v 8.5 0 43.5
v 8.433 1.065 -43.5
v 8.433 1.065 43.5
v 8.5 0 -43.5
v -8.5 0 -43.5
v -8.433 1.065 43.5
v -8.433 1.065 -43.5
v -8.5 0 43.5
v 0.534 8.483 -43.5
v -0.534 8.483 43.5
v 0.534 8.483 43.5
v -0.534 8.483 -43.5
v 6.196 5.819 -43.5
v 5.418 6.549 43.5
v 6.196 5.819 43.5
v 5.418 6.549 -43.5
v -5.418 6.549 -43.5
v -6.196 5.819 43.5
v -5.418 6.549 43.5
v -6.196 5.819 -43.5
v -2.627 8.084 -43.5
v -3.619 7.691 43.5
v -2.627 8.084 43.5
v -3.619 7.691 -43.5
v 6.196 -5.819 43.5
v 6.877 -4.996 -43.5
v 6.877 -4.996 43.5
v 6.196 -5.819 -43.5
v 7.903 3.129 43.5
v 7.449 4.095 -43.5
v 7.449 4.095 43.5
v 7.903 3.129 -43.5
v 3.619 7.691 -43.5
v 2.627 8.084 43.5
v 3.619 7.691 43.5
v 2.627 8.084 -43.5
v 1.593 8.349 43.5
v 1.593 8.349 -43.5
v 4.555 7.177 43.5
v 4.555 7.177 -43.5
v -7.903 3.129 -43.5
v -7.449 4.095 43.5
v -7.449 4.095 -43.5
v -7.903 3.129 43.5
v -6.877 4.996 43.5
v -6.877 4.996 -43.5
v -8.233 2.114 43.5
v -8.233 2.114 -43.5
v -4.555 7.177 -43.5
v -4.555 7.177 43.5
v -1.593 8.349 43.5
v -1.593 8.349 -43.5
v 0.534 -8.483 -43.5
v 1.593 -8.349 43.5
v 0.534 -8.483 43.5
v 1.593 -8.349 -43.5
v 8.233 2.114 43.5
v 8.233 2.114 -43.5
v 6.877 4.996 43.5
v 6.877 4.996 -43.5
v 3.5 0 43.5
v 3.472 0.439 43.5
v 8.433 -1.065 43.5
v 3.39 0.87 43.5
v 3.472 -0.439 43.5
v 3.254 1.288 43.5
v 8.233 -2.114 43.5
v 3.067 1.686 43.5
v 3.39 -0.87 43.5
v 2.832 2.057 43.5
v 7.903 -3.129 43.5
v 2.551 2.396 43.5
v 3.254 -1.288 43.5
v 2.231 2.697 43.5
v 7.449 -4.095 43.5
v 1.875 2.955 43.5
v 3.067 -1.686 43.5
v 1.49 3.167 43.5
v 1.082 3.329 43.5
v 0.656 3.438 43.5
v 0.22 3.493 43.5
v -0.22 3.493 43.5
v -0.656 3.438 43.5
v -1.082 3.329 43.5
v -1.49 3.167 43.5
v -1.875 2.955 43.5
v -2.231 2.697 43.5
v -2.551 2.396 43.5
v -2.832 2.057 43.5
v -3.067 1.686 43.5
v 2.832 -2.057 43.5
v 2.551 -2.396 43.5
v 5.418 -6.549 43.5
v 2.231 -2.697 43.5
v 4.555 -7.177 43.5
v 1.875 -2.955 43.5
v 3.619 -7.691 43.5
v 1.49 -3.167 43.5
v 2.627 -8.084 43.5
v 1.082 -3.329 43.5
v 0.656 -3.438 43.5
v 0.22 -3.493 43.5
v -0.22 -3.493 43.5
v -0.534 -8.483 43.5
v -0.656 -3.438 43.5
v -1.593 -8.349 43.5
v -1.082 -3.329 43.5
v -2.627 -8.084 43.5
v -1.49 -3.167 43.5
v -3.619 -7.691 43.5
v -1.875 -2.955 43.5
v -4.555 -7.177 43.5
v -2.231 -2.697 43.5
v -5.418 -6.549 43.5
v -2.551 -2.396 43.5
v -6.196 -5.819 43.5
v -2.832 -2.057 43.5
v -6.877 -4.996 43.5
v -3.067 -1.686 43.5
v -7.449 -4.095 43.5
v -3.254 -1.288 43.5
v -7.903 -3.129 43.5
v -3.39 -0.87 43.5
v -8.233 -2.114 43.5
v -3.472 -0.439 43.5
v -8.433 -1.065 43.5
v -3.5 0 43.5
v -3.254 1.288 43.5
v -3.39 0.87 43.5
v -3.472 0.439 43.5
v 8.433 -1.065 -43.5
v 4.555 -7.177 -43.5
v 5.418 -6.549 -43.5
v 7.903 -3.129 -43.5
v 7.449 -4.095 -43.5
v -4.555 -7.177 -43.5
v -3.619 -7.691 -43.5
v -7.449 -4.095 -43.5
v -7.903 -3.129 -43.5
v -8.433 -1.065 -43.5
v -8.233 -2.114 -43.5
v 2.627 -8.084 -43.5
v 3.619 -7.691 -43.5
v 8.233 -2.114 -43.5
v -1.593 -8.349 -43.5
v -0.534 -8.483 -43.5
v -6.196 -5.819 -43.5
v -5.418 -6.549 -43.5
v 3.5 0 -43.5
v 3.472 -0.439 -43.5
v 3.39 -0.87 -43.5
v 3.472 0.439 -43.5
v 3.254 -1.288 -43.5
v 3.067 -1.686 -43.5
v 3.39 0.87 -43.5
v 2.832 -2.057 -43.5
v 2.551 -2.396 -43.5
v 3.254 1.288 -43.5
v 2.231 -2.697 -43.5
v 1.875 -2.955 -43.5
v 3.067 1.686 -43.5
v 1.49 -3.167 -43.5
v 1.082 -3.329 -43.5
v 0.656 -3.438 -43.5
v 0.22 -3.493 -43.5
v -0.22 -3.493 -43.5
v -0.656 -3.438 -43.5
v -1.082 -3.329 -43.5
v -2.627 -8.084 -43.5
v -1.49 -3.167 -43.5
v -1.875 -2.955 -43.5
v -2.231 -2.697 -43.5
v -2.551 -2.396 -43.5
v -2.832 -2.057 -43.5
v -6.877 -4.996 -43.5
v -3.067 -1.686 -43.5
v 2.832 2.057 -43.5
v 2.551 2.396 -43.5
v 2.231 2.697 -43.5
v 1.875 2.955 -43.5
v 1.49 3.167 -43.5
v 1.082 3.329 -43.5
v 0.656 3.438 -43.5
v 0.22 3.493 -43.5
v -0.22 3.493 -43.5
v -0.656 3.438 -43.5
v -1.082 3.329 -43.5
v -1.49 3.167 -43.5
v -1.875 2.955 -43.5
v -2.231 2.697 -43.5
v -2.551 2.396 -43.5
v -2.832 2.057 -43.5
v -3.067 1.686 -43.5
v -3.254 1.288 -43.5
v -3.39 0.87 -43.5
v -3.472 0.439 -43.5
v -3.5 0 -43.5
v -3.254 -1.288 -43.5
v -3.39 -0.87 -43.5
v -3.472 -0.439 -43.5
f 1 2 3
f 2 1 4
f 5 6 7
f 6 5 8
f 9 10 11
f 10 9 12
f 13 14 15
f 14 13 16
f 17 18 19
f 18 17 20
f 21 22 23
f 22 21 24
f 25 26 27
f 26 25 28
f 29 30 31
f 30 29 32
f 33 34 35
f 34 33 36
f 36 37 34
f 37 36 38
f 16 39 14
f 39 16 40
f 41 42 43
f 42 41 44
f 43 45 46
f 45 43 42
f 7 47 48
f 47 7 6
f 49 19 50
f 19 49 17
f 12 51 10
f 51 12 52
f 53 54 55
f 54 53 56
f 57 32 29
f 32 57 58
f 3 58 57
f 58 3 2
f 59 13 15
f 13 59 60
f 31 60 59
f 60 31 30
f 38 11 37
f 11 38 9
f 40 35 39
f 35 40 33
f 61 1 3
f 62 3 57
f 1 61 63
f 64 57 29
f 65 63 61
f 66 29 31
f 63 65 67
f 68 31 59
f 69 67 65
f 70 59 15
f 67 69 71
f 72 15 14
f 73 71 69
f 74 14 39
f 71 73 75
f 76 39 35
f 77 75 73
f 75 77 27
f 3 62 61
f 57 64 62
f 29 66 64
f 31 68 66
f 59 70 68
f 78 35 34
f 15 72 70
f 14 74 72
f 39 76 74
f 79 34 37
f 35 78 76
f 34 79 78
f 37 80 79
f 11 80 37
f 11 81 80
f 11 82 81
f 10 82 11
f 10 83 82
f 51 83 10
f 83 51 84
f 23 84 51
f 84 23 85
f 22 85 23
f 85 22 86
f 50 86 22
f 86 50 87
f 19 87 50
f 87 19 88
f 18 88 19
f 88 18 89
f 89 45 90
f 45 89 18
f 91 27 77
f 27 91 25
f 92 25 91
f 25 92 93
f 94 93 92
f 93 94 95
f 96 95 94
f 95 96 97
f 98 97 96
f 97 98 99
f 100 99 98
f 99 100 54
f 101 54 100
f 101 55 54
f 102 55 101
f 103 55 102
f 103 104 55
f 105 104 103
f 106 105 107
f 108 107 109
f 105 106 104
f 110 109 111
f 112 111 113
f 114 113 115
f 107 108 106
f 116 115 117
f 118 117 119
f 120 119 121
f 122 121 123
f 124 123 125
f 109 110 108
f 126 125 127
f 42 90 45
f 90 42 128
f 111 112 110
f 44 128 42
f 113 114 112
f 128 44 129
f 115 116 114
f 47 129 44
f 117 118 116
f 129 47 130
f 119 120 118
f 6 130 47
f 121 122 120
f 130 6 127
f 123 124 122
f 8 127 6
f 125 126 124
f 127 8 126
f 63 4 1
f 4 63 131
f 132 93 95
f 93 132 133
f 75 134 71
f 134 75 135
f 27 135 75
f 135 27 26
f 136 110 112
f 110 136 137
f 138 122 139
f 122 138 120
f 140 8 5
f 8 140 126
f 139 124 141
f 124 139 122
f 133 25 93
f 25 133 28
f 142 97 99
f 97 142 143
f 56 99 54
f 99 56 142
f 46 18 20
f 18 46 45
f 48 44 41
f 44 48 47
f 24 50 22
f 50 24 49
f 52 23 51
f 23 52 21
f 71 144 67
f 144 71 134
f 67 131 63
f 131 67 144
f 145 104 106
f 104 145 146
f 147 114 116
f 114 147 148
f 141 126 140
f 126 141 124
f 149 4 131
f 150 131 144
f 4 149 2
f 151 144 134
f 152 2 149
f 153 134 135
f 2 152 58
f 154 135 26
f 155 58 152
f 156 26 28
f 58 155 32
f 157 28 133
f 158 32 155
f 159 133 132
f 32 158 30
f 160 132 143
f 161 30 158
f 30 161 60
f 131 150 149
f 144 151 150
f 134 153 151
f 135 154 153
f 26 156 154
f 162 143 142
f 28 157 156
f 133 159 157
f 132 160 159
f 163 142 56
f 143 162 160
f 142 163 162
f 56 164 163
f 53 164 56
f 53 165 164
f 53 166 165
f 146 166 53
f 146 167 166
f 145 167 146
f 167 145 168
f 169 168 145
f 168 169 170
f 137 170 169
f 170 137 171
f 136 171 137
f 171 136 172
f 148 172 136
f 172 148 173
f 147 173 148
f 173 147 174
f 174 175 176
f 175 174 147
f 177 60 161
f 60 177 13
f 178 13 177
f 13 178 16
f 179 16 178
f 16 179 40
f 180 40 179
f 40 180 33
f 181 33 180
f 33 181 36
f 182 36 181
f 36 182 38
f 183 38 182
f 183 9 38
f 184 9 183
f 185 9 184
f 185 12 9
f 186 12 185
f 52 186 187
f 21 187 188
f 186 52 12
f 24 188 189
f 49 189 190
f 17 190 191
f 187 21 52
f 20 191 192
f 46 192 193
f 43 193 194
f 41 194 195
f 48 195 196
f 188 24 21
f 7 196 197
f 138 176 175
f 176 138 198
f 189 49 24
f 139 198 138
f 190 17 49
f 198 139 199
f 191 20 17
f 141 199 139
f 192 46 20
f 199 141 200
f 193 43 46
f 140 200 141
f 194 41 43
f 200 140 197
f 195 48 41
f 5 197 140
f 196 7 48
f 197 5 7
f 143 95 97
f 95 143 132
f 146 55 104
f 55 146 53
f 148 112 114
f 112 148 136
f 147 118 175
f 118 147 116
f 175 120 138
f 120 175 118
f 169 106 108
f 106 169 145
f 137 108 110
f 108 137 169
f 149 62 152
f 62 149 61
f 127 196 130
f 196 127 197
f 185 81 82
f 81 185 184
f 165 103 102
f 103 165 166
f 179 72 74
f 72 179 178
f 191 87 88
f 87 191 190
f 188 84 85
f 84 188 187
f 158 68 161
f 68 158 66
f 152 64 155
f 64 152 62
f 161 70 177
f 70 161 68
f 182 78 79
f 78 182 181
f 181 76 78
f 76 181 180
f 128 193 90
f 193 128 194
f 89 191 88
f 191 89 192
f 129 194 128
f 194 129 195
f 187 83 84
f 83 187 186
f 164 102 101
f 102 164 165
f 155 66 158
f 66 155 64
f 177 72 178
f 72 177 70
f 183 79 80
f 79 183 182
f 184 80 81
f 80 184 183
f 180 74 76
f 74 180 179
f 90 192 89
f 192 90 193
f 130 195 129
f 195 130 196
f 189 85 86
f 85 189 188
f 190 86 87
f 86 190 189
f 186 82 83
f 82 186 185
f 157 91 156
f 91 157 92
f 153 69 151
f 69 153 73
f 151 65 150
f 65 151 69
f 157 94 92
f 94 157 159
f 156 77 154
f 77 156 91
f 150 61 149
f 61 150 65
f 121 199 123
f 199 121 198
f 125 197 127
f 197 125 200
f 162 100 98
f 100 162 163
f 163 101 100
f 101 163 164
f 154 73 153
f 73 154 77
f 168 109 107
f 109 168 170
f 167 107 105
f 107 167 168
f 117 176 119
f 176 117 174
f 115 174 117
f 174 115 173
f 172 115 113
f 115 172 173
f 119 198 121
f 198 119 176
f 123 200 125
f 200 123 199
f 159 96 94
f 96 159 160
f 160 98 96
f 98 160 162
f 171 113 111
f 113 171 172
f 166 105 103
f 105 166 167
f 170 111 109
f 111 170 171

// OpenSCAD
$fn = 50;


difference() {
	union() {
		translate(v = [0, 0, -43.5000000000]) {
			cylinder(h = 87, r = 8.5000000000);
		}
	}
	union() {
		translate(v = [0, 0, -100.0000000000]) {
			cylinder(h = 200, r = 3.5000000000);
		}
	}
}
